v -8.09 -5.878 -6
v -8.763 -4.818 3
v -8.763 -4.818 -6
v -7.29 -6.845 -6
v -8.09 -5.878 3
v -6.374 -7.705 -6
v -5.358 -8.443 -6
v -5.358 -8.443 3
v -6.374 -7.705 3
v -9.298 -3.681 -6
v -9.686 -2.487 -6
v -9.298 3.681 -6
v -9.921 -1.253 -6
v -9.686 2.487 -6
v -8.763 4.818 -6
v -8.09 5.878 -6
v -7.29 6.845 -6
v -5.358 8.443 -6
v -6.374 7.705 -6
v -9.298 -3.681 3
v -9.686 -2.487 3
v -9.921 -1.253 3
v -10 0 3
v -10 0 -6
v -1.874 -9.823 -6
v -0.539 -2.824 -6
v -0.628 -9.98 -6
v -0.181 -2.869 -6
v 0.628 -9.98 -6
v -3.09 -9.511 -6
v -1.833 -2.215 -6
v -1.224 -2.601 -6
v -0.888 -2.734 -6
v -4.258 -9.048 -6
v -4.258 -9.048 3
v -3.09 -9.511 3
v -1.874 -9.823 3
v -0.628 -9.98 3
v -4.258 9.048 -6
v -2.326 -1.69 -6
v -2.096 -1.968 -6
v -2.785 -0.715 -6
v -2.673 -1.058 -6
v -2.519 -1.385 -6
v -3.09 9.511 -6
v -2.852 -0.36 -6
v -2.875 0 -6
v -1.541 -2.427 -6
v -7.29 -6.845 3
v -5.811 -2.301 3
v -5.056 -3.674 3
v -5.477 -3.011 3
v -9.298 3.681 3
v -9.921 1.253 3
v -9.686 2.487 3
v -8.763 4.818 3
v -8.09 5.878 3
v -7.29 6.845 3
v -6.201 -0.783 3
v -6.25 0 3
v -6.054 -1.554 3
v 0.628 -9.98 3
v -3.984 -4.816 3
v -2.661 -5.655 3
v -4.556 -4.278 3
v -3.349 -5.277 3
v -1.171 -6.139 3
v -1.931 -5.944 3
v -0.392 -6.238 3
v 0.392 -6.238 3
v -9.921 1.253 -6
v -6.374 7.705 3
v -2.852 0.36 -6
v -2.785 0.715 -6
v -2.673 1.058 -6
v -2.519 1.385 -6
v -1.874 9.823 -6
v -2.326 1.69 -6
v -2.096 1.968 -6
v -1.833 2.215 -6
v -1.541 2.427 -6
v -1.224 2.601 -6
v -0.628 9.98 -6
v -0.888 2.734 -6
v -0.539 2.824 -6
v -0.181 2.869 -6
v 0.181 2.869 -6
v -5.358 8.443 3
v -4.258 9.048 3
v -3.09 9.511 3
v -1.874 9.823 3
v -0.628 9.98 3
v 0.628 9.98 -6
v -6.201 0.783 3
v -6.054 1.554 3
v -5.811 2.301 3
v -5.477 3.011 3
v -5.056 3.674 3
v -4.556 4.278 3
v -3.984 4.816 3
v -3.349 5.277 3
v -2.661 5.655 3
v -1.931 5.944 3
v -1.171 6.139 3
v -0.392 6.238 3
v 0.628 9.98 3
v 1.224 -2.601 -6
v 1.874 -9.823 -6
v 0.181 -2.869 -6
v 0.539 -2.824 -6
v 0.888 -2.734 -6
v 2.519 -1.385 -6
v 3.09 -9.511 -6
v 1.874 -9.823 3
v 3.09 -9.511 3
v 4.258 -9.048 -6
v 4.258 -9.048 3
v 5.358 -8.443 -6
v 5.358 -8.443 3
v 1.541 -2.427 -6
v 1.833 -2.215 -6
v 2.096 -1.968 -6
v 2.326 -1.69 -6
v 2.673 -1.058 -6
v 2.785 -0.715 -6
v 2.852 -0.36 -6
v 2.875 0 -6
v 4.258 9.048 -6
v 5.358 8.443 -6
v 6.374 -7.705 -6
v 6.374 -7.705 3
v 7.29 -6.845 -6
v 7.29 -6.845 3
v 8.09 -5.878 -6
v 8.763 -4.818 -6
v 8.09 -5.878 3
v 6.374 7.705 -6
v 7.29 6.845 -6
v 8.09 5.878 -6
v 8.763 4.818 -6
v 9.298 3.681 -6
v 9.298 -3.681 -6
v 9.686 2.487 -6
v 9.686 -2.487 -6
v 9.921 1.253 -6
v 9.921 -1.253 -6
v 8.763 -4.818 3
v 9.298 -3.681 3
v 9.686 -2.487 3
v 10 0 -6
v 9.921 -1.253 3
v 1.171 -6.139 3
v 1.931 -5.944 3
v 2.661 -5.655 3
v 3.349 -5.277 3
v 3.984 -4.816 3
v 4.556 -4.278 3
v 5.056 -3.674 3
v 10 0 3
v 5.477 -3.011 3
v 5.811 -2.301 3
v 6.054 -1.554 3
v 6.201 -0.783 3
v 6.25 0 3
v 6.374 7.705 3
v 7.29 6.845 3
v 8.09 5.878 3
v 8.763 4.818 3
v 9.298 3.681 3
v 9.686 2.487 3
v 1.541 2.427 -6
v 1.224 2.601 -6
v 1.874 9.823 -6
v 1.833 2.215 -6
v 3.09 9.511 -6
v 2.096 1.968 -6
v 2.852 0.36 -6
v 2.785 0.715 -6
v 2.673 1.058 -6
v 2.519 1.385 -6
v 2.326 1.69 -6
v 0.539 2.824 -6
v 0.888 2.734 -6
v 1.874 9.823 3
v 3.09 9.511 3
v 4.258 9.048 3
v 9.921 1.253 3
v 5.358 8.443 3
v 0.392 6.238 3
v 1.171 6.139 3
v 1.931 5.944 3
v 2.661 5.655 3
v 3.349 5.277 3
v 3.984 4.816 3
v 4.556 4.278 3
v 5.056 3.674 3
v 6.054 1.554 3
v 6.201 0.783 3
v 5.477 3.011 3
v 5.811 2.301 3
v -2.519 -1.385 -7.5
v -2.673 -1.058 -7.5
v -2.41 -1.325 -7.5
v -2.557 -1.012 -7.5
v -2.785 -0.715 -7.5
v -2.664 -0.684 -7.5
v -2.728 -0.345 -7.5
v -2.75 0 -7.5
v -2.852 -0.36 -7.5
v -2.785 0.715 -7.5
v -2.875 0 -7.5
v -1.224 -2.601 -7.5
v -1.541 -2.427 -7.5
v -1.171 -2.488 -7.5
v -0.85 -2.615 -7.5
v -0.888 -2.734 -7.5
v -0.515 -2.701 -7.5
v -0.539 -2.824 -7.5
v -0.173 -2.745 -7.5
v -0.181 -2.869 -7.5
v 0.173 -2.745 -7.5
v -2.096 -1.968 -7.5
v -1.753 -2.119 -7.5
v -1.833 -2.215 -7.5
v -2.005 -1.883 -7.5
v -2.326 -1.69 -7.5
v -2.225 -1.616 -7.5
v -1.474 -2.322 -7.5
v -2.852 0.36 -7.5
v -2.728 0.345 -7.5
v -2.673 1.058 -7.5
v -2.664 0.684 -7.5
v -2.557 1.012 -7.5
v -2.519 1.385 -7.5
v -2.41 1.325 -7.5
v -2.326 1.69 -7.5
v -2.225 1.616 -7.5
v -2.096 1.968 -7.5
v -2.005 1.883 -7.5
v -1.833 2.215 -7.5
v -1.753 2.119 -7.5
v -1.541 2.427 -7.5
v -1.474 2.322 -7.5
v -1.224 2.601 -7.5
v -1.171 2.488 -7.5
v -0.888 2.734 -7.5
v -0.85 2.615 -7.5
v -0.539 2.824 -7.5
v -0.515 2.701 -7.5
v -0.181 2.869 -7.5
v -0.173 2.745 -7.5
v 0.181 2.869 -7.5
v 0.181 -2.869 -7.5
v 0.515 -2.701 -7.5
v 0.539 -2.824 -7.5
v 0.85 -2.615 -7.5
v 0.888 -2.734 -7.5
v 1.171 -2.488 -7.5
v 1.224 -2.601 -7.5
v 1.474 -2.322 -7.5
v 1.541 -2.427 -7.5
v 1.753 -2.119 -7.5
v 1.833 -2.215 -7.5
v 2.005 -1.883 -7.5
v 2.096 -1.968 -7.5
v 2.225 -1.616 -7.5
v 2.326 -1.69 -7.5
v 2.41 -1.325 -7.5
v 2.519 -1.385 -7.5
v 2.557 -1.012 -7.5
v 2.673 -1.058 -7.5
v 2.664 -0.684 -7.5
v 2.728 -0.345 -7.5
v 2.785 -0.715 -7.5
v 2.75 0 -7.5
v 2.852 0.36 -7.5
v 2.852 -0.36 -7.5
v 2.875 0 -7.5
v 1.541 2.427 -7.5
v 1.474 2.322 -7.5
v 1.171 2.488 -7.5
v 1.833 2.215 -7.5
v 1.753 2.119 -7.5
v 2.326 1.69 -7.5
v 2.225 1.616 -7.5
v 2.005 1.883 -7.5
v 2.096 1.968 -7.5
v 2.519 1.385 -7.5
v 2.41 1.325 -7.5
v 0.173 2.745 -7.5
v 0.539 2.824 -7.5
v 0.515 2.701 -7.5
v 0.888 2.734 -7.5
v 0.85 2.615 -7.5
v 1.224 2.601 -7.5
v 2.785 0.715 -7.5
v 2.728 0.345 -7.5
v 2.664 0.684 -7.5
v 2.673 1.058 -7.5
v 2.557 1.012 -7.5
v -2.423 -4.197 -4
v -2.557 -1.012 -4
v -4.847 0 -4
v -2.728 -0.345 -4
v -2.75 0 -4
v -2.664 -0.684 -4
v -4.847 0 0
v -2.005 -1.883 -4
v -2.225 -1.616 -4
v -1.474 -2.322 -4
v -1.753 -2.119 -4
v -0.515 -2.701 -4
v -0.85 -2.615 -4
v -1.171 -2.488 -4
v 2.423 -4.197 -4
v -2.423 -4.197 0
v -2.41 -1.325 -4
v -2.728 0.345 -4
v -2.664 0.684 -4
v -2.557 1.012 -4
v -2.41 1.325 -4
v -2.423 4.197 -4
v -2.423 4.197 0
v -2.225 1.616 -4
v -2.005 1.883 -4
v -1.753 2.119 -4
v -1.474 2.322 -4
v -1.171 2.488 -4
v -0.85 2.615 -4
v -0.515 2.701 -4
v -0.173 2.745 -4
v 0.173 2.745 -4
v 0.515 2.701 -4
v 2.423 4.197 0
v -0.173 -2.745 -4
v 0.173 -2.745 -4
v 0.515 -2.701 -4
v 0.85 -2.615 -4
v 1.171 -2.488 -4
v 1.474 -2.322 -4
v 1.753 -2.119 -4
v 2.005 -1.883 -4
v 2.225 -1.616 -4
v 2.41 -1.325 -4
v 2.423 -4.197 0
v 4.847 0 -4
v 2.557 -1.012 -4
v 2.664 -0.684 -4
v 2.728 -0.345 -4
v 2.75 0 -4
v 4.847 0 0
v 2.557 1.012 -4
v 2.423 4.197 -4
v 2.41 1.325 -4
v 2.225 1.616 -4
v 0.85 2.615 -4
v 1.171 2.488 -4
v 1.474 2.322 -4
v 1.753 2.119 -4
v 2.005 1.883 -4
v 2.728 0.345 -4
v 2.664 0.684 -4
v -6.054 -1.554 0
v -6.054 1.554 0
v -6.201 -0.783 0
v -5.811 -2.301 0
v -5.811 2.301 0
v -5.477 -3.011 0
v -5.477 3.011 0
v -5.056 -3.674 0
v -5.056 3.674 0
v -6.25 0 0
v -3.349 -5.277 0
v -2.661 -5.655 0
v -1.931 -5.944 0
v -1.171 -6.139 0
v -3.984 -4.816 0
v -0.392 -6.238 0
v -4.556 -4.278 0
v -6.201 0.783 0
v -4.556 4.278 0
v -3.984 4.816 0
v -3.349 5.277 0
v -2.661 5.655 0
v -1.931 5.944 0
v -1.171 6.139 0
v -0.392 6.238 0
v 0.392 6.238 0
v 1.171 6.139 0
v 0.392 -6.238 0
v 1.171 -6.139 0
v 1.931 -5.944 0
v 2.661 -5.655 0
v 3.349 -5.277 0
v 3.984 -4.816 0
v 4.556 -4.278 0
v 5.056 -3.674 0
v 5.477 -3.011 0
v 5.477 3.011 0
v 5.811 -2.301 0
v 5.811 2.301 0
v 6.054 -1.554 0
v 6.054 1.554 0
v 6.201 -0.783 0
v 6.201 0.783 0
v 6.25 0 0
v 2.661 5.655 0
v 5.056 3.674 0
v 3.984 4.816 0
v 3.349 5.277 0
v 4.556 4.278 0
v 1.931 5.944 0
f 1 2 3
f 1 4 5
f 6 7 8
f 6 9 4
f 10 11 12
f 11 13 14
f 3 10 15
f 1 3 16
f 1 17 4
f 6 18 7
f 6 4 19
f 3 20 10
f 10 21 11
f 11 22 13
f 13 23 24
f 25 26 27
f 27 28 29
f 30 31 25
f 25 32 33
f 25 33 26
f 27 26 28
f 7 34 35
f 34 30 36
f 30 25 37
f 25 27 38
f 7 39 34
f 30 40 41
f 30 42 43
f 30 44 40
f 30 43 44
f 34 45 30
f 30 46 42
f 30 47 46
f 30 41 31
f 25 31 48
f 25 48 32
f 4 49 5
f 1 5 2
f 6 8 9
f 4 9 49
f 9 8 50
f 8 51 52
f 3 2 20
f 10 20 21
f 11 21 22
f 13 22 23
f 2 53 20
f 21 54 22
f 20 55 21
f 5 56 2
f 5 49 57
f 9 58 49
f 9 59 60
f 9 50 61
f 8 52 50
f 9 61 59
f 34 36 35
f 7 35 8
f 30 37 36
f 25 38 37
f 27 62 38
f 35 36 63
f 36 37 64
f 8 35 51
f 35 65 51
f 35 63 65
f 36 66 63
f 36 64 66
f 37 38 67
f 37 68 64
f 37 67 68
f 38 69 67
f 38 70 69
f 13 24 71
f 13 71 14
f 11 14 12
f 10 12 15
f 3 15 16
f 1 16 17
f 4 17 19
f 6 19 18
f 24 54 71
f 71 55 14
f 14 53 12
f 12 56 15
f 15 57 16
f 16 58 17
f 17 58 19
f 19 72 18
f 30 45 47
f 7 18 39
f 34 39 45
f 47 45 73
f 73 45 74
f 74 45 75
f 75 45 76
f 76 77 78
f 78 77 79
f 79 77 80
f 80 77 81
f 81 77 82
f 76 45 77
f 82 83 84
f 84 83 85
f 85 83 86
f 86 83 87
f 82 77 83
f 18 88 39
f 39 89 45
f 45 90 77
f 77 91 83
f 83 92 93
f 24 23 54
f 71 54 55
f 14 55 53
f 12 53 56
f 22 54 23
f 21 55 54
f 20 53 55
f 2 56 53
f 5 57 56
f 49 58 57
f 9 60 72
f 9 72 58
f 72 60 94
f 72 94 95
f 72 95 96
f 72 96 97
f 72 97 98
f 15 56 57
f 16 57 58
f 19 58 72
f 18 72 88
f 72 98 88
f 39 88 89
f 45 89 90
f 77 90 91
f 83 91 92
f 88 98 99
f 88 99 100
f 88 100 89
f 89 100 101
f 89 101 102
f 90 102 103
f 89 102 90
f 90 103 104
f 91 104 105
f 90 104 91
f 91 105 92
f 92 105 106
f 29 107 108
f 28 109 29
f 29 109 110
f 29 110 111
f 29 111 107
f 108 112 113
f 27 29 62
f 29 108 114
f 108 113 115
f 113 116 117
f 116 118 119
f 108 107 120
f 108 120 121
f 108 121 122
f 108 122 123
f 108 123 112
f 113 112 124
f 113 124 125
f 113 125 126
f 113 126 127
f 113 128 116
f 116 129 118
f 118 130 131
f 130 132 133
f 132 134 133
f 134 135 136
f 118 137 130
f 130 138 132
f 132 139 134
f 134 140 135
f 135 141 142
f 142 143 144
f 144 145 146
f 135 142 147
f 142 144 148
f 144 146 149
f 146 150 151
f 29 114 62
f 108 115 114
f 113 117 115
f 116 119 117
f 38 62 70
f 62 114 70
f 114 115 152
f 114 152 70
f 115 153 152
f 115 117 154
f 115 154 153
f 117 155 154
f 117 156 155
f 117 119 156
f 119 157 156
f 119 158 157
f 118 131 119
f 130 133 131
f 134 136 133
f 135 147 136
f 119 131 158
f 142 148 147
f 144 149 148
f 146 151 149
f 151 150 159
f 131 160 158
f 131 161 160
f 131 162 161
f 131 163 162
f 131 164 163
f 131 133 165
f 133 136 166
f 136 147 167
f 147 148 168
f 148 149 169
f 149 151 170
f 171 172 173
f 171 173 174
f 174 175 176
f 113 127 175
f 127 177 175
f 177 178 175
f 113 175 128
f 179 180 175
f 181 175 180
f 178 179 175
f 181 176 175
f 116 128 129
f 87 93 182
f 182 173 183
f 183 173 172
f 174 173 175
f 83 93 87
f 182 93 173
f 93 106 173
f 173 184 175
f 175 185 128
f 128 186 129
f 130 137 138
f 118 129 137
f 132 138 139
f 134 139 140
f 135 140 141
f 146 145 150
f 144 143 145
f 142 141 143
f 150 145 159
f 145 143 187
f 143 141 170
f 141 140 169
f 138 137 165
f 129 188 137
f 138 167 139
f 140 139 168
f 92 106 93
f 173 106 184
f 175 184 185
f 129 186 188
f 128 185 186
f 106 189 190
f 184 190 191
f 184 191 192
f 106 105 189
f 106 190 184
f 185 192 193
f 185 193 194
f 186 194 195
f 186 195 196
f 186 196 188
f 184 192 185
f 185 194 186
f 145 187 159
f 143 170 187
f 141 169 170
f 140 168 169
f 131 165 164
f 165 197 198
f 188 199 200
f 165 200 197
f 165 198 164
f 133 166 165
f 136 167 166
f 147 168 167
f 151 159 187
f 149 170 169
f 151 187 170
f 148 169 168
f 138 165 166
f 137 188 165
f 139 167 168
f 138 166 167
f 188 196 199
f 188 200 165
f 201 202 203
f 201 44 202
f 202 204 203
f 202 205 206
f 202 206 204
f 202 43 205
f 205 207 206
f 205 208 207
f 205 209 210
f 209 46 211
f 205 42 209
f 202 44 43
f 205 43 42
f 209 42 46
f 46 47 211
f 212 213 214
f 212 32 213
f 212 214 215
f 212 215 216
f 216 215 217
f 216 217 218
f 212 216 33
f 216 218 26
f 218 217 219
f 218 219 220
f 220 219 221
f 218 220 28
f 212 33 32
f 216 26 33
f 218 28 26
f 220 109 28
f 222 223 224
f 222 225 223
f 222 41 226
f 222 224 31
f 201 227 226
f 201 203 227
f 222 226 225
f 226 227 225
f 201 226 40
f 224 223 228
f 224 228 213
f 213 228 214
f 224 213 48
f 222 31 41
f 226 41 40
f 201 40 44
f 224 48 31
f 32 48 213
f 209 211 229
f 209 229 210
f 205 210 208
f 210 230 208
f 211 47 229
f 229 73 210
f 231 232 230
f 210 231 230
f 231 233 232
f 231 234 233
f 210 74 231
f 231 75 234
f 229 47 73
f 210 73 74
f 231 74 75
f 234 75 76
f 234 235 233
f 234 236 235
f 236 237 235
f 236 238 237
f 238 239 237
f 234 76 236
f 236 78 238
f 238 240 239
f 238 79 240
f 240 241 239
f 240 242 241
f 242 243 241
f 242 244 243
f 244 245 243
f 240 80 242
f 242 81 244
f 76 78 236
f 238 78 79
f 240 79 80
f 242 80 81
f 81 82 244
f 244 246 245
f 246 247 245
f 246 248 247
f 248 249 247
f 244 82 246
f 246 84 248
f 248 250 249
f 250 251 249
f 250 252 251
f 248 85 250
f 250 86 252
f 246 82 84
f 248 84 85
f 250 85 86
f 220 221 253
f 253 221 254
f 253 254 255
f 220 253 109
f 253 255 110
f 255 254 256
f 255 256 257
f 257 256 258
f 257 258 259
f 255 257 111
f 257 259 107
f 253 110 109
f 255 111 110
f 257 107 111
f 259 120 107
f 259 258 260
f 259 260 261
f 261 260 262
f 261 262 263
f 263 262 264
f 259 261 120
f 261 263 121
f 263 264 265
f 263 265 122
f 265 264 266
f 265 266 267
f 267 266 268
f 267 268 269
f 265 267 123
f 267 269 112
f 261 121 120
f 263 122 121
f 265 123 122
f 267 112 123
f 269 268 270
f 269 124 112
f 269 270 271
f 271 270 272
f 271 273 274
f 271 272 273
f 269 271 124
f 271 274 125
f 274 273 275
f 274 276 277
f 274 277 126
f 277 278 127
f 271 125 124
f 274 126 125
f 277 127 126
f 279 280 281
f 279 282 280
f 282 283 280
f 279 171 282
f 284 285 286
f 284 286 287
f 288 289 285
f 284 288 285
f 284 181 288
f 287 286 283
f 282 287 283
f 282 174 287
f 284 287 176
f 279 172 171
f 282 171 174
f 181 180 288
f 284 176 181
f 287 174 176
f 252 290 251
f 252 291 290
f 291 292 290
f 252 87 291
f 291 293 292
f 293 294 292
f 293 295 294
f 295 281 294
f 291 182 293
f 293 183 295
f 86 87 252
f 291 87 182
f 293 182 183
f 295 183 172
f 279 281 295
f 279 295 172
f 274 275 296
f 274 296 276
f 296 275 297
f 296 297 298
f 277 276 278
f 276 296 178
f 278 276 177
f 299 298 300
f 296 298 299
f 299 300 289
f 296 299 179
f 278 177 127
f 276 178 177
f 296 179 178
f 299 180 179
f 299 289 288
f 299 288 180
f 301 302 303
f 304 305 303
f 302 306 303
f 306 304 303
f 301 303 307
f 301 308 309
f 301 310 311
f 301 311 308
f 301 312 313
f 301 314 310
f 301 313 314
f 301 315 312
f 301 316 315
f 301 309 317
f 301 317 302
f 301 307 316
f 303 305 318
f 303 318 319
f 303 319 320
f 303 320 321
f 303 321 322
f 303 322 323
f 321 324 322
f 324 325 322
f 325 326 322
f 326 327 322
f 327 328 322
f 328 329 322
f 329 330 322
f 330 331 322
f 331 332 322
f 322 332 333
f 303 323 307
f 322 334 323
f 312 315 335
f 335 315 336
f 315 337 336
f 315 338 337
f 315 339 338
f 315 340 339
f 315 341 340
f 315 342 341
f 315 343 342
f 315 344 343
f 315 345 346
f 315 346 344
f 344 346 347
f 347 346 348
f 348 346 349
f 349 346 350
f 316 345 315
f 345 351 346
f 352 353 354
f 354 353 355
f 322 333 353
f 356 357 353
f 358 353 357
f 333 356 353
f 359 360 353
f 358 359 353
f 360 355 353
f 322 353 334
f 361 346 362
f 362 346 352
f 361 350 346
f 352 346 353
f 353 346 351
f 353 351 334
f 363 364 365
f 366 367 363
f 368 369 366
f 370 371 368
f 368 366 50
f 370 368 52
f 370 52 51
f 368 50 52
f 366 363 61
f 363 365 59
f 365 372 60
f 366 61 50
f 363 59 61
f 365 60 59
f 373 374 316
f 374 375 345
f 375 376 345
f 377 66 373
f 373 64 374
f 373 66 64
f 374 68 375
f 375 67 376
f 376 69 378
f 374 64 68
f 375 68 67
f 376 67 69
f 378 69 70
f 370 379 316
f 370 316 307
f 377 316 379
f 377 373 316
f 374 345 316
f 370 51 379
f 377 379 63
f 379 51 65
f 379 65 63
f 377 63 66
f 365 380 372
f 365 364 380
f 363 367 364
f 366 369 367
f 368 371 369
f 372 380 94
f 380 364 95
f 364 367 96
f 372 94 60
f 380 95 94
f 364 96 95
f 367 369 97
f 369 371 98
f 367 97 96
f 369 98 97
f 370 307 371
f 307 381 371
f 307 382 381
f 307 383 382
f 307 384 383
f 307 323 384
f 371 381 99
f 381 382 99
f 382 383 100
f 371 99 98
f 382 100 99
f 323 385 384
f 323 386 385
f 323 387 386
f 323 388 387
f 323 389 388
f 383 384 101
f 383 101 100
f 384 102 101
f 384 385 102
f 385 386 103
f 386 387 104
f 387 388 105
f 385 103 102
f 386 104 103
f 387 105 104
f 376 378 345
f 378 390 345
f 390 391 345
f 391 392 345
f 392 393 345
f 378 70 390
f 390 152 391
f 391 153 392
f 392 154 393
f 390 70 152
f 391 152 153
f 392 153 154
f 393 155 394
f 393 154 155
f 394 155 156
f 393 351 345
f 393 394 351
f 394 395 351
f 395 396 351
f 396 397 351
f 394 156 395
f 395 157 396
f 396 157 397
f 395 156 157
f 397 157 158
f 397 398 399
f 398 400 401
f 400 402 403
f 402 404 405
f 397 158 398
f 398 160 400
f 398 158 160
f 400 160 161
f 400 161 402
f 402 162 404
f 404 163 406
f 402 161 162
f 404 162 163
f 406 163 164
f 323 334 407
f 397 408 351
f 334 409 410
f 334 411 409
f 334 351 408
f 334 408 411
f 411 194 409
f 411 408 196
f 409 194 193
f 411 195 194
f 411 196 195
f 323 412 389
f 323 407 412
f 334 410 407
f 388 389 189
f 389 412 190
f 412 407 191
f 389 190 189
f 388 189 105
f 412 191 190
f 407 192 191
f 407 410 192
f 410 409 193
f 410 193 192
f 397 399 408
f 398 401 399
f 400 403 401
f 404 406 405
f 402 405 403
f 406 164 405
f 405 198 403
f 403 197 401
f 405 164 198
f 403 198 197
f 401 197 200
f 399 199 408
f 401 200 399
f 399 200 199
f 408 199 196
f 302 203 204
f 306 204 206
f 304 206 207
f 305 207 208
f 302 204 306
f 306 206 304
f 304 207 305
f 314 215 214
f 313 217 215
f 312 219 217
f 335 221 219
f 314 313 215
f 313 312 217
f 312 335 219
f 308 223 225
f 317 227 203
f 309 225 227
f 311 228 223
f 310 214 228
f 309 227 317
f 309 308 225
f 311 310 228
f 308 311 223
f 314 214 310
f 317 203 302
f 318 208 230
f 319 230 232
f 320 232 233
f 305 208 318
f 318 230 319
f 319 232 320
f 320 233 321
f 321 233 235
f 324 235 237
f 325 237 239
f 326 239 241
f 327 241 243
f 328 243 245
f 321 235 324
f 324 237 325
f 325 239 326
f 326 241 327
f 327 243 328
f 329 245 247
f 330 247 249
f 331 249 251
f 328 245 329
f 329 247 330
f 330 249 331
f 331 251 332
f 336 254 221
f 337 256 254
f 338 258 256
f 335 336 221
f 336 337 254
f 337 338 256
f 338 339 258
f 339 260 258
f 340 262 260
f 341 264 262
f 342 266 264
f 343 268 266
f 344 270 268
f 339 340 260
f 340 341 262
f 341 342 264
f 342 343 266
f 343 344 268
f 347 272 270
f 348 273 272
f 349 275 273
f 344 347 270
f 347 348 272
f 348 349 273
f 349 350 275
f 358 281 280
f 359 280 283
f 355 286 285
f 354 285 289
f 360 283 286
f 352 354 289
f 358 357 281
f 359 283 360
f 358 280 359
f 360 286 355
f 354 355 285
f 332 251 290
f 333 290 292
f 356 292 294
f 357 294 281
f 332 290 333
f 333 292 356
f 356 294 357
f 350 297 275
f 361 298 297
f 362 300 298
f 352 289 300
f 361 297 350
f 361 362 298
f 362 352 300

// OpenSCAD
$fn = 50;

difference() {
	union() {
		translate(v = [0, 0, -6.0]) {
			cylinder(h = 9.0, r = 10.0);
		}
		#translate(v = [0, 0, -7.5]) {
			cylinder(h = 7.5, r = 2.875);
		}
	}
	union() {
		translate(v = [0, 0, 0]) {
			rotate(a = [0, 0, 0]) {
				difference() {
					union() {
						translate(v = [0, 0, -4]) {
							linear_extrude(height = 4) {
								polygon(points = [[4.8468, 0.0], [2.4234000000000004, 4.197451927062417], [-2.423399999999999, 4.197451927062417], [-4.8468, 5.935618106107392e-16], [-2.423400000000002, -4.197451927062416], [2.423399999999997, -4.197451927062419]]);
							}
						}
					}
					union();
				}
			}
		}
		#cylinder(h = 3, r = 6.25);
		#translate(v = [0, 0, -100.0]) {
			cylinder(h = 200, r = 2.75);
		}
	}
}
